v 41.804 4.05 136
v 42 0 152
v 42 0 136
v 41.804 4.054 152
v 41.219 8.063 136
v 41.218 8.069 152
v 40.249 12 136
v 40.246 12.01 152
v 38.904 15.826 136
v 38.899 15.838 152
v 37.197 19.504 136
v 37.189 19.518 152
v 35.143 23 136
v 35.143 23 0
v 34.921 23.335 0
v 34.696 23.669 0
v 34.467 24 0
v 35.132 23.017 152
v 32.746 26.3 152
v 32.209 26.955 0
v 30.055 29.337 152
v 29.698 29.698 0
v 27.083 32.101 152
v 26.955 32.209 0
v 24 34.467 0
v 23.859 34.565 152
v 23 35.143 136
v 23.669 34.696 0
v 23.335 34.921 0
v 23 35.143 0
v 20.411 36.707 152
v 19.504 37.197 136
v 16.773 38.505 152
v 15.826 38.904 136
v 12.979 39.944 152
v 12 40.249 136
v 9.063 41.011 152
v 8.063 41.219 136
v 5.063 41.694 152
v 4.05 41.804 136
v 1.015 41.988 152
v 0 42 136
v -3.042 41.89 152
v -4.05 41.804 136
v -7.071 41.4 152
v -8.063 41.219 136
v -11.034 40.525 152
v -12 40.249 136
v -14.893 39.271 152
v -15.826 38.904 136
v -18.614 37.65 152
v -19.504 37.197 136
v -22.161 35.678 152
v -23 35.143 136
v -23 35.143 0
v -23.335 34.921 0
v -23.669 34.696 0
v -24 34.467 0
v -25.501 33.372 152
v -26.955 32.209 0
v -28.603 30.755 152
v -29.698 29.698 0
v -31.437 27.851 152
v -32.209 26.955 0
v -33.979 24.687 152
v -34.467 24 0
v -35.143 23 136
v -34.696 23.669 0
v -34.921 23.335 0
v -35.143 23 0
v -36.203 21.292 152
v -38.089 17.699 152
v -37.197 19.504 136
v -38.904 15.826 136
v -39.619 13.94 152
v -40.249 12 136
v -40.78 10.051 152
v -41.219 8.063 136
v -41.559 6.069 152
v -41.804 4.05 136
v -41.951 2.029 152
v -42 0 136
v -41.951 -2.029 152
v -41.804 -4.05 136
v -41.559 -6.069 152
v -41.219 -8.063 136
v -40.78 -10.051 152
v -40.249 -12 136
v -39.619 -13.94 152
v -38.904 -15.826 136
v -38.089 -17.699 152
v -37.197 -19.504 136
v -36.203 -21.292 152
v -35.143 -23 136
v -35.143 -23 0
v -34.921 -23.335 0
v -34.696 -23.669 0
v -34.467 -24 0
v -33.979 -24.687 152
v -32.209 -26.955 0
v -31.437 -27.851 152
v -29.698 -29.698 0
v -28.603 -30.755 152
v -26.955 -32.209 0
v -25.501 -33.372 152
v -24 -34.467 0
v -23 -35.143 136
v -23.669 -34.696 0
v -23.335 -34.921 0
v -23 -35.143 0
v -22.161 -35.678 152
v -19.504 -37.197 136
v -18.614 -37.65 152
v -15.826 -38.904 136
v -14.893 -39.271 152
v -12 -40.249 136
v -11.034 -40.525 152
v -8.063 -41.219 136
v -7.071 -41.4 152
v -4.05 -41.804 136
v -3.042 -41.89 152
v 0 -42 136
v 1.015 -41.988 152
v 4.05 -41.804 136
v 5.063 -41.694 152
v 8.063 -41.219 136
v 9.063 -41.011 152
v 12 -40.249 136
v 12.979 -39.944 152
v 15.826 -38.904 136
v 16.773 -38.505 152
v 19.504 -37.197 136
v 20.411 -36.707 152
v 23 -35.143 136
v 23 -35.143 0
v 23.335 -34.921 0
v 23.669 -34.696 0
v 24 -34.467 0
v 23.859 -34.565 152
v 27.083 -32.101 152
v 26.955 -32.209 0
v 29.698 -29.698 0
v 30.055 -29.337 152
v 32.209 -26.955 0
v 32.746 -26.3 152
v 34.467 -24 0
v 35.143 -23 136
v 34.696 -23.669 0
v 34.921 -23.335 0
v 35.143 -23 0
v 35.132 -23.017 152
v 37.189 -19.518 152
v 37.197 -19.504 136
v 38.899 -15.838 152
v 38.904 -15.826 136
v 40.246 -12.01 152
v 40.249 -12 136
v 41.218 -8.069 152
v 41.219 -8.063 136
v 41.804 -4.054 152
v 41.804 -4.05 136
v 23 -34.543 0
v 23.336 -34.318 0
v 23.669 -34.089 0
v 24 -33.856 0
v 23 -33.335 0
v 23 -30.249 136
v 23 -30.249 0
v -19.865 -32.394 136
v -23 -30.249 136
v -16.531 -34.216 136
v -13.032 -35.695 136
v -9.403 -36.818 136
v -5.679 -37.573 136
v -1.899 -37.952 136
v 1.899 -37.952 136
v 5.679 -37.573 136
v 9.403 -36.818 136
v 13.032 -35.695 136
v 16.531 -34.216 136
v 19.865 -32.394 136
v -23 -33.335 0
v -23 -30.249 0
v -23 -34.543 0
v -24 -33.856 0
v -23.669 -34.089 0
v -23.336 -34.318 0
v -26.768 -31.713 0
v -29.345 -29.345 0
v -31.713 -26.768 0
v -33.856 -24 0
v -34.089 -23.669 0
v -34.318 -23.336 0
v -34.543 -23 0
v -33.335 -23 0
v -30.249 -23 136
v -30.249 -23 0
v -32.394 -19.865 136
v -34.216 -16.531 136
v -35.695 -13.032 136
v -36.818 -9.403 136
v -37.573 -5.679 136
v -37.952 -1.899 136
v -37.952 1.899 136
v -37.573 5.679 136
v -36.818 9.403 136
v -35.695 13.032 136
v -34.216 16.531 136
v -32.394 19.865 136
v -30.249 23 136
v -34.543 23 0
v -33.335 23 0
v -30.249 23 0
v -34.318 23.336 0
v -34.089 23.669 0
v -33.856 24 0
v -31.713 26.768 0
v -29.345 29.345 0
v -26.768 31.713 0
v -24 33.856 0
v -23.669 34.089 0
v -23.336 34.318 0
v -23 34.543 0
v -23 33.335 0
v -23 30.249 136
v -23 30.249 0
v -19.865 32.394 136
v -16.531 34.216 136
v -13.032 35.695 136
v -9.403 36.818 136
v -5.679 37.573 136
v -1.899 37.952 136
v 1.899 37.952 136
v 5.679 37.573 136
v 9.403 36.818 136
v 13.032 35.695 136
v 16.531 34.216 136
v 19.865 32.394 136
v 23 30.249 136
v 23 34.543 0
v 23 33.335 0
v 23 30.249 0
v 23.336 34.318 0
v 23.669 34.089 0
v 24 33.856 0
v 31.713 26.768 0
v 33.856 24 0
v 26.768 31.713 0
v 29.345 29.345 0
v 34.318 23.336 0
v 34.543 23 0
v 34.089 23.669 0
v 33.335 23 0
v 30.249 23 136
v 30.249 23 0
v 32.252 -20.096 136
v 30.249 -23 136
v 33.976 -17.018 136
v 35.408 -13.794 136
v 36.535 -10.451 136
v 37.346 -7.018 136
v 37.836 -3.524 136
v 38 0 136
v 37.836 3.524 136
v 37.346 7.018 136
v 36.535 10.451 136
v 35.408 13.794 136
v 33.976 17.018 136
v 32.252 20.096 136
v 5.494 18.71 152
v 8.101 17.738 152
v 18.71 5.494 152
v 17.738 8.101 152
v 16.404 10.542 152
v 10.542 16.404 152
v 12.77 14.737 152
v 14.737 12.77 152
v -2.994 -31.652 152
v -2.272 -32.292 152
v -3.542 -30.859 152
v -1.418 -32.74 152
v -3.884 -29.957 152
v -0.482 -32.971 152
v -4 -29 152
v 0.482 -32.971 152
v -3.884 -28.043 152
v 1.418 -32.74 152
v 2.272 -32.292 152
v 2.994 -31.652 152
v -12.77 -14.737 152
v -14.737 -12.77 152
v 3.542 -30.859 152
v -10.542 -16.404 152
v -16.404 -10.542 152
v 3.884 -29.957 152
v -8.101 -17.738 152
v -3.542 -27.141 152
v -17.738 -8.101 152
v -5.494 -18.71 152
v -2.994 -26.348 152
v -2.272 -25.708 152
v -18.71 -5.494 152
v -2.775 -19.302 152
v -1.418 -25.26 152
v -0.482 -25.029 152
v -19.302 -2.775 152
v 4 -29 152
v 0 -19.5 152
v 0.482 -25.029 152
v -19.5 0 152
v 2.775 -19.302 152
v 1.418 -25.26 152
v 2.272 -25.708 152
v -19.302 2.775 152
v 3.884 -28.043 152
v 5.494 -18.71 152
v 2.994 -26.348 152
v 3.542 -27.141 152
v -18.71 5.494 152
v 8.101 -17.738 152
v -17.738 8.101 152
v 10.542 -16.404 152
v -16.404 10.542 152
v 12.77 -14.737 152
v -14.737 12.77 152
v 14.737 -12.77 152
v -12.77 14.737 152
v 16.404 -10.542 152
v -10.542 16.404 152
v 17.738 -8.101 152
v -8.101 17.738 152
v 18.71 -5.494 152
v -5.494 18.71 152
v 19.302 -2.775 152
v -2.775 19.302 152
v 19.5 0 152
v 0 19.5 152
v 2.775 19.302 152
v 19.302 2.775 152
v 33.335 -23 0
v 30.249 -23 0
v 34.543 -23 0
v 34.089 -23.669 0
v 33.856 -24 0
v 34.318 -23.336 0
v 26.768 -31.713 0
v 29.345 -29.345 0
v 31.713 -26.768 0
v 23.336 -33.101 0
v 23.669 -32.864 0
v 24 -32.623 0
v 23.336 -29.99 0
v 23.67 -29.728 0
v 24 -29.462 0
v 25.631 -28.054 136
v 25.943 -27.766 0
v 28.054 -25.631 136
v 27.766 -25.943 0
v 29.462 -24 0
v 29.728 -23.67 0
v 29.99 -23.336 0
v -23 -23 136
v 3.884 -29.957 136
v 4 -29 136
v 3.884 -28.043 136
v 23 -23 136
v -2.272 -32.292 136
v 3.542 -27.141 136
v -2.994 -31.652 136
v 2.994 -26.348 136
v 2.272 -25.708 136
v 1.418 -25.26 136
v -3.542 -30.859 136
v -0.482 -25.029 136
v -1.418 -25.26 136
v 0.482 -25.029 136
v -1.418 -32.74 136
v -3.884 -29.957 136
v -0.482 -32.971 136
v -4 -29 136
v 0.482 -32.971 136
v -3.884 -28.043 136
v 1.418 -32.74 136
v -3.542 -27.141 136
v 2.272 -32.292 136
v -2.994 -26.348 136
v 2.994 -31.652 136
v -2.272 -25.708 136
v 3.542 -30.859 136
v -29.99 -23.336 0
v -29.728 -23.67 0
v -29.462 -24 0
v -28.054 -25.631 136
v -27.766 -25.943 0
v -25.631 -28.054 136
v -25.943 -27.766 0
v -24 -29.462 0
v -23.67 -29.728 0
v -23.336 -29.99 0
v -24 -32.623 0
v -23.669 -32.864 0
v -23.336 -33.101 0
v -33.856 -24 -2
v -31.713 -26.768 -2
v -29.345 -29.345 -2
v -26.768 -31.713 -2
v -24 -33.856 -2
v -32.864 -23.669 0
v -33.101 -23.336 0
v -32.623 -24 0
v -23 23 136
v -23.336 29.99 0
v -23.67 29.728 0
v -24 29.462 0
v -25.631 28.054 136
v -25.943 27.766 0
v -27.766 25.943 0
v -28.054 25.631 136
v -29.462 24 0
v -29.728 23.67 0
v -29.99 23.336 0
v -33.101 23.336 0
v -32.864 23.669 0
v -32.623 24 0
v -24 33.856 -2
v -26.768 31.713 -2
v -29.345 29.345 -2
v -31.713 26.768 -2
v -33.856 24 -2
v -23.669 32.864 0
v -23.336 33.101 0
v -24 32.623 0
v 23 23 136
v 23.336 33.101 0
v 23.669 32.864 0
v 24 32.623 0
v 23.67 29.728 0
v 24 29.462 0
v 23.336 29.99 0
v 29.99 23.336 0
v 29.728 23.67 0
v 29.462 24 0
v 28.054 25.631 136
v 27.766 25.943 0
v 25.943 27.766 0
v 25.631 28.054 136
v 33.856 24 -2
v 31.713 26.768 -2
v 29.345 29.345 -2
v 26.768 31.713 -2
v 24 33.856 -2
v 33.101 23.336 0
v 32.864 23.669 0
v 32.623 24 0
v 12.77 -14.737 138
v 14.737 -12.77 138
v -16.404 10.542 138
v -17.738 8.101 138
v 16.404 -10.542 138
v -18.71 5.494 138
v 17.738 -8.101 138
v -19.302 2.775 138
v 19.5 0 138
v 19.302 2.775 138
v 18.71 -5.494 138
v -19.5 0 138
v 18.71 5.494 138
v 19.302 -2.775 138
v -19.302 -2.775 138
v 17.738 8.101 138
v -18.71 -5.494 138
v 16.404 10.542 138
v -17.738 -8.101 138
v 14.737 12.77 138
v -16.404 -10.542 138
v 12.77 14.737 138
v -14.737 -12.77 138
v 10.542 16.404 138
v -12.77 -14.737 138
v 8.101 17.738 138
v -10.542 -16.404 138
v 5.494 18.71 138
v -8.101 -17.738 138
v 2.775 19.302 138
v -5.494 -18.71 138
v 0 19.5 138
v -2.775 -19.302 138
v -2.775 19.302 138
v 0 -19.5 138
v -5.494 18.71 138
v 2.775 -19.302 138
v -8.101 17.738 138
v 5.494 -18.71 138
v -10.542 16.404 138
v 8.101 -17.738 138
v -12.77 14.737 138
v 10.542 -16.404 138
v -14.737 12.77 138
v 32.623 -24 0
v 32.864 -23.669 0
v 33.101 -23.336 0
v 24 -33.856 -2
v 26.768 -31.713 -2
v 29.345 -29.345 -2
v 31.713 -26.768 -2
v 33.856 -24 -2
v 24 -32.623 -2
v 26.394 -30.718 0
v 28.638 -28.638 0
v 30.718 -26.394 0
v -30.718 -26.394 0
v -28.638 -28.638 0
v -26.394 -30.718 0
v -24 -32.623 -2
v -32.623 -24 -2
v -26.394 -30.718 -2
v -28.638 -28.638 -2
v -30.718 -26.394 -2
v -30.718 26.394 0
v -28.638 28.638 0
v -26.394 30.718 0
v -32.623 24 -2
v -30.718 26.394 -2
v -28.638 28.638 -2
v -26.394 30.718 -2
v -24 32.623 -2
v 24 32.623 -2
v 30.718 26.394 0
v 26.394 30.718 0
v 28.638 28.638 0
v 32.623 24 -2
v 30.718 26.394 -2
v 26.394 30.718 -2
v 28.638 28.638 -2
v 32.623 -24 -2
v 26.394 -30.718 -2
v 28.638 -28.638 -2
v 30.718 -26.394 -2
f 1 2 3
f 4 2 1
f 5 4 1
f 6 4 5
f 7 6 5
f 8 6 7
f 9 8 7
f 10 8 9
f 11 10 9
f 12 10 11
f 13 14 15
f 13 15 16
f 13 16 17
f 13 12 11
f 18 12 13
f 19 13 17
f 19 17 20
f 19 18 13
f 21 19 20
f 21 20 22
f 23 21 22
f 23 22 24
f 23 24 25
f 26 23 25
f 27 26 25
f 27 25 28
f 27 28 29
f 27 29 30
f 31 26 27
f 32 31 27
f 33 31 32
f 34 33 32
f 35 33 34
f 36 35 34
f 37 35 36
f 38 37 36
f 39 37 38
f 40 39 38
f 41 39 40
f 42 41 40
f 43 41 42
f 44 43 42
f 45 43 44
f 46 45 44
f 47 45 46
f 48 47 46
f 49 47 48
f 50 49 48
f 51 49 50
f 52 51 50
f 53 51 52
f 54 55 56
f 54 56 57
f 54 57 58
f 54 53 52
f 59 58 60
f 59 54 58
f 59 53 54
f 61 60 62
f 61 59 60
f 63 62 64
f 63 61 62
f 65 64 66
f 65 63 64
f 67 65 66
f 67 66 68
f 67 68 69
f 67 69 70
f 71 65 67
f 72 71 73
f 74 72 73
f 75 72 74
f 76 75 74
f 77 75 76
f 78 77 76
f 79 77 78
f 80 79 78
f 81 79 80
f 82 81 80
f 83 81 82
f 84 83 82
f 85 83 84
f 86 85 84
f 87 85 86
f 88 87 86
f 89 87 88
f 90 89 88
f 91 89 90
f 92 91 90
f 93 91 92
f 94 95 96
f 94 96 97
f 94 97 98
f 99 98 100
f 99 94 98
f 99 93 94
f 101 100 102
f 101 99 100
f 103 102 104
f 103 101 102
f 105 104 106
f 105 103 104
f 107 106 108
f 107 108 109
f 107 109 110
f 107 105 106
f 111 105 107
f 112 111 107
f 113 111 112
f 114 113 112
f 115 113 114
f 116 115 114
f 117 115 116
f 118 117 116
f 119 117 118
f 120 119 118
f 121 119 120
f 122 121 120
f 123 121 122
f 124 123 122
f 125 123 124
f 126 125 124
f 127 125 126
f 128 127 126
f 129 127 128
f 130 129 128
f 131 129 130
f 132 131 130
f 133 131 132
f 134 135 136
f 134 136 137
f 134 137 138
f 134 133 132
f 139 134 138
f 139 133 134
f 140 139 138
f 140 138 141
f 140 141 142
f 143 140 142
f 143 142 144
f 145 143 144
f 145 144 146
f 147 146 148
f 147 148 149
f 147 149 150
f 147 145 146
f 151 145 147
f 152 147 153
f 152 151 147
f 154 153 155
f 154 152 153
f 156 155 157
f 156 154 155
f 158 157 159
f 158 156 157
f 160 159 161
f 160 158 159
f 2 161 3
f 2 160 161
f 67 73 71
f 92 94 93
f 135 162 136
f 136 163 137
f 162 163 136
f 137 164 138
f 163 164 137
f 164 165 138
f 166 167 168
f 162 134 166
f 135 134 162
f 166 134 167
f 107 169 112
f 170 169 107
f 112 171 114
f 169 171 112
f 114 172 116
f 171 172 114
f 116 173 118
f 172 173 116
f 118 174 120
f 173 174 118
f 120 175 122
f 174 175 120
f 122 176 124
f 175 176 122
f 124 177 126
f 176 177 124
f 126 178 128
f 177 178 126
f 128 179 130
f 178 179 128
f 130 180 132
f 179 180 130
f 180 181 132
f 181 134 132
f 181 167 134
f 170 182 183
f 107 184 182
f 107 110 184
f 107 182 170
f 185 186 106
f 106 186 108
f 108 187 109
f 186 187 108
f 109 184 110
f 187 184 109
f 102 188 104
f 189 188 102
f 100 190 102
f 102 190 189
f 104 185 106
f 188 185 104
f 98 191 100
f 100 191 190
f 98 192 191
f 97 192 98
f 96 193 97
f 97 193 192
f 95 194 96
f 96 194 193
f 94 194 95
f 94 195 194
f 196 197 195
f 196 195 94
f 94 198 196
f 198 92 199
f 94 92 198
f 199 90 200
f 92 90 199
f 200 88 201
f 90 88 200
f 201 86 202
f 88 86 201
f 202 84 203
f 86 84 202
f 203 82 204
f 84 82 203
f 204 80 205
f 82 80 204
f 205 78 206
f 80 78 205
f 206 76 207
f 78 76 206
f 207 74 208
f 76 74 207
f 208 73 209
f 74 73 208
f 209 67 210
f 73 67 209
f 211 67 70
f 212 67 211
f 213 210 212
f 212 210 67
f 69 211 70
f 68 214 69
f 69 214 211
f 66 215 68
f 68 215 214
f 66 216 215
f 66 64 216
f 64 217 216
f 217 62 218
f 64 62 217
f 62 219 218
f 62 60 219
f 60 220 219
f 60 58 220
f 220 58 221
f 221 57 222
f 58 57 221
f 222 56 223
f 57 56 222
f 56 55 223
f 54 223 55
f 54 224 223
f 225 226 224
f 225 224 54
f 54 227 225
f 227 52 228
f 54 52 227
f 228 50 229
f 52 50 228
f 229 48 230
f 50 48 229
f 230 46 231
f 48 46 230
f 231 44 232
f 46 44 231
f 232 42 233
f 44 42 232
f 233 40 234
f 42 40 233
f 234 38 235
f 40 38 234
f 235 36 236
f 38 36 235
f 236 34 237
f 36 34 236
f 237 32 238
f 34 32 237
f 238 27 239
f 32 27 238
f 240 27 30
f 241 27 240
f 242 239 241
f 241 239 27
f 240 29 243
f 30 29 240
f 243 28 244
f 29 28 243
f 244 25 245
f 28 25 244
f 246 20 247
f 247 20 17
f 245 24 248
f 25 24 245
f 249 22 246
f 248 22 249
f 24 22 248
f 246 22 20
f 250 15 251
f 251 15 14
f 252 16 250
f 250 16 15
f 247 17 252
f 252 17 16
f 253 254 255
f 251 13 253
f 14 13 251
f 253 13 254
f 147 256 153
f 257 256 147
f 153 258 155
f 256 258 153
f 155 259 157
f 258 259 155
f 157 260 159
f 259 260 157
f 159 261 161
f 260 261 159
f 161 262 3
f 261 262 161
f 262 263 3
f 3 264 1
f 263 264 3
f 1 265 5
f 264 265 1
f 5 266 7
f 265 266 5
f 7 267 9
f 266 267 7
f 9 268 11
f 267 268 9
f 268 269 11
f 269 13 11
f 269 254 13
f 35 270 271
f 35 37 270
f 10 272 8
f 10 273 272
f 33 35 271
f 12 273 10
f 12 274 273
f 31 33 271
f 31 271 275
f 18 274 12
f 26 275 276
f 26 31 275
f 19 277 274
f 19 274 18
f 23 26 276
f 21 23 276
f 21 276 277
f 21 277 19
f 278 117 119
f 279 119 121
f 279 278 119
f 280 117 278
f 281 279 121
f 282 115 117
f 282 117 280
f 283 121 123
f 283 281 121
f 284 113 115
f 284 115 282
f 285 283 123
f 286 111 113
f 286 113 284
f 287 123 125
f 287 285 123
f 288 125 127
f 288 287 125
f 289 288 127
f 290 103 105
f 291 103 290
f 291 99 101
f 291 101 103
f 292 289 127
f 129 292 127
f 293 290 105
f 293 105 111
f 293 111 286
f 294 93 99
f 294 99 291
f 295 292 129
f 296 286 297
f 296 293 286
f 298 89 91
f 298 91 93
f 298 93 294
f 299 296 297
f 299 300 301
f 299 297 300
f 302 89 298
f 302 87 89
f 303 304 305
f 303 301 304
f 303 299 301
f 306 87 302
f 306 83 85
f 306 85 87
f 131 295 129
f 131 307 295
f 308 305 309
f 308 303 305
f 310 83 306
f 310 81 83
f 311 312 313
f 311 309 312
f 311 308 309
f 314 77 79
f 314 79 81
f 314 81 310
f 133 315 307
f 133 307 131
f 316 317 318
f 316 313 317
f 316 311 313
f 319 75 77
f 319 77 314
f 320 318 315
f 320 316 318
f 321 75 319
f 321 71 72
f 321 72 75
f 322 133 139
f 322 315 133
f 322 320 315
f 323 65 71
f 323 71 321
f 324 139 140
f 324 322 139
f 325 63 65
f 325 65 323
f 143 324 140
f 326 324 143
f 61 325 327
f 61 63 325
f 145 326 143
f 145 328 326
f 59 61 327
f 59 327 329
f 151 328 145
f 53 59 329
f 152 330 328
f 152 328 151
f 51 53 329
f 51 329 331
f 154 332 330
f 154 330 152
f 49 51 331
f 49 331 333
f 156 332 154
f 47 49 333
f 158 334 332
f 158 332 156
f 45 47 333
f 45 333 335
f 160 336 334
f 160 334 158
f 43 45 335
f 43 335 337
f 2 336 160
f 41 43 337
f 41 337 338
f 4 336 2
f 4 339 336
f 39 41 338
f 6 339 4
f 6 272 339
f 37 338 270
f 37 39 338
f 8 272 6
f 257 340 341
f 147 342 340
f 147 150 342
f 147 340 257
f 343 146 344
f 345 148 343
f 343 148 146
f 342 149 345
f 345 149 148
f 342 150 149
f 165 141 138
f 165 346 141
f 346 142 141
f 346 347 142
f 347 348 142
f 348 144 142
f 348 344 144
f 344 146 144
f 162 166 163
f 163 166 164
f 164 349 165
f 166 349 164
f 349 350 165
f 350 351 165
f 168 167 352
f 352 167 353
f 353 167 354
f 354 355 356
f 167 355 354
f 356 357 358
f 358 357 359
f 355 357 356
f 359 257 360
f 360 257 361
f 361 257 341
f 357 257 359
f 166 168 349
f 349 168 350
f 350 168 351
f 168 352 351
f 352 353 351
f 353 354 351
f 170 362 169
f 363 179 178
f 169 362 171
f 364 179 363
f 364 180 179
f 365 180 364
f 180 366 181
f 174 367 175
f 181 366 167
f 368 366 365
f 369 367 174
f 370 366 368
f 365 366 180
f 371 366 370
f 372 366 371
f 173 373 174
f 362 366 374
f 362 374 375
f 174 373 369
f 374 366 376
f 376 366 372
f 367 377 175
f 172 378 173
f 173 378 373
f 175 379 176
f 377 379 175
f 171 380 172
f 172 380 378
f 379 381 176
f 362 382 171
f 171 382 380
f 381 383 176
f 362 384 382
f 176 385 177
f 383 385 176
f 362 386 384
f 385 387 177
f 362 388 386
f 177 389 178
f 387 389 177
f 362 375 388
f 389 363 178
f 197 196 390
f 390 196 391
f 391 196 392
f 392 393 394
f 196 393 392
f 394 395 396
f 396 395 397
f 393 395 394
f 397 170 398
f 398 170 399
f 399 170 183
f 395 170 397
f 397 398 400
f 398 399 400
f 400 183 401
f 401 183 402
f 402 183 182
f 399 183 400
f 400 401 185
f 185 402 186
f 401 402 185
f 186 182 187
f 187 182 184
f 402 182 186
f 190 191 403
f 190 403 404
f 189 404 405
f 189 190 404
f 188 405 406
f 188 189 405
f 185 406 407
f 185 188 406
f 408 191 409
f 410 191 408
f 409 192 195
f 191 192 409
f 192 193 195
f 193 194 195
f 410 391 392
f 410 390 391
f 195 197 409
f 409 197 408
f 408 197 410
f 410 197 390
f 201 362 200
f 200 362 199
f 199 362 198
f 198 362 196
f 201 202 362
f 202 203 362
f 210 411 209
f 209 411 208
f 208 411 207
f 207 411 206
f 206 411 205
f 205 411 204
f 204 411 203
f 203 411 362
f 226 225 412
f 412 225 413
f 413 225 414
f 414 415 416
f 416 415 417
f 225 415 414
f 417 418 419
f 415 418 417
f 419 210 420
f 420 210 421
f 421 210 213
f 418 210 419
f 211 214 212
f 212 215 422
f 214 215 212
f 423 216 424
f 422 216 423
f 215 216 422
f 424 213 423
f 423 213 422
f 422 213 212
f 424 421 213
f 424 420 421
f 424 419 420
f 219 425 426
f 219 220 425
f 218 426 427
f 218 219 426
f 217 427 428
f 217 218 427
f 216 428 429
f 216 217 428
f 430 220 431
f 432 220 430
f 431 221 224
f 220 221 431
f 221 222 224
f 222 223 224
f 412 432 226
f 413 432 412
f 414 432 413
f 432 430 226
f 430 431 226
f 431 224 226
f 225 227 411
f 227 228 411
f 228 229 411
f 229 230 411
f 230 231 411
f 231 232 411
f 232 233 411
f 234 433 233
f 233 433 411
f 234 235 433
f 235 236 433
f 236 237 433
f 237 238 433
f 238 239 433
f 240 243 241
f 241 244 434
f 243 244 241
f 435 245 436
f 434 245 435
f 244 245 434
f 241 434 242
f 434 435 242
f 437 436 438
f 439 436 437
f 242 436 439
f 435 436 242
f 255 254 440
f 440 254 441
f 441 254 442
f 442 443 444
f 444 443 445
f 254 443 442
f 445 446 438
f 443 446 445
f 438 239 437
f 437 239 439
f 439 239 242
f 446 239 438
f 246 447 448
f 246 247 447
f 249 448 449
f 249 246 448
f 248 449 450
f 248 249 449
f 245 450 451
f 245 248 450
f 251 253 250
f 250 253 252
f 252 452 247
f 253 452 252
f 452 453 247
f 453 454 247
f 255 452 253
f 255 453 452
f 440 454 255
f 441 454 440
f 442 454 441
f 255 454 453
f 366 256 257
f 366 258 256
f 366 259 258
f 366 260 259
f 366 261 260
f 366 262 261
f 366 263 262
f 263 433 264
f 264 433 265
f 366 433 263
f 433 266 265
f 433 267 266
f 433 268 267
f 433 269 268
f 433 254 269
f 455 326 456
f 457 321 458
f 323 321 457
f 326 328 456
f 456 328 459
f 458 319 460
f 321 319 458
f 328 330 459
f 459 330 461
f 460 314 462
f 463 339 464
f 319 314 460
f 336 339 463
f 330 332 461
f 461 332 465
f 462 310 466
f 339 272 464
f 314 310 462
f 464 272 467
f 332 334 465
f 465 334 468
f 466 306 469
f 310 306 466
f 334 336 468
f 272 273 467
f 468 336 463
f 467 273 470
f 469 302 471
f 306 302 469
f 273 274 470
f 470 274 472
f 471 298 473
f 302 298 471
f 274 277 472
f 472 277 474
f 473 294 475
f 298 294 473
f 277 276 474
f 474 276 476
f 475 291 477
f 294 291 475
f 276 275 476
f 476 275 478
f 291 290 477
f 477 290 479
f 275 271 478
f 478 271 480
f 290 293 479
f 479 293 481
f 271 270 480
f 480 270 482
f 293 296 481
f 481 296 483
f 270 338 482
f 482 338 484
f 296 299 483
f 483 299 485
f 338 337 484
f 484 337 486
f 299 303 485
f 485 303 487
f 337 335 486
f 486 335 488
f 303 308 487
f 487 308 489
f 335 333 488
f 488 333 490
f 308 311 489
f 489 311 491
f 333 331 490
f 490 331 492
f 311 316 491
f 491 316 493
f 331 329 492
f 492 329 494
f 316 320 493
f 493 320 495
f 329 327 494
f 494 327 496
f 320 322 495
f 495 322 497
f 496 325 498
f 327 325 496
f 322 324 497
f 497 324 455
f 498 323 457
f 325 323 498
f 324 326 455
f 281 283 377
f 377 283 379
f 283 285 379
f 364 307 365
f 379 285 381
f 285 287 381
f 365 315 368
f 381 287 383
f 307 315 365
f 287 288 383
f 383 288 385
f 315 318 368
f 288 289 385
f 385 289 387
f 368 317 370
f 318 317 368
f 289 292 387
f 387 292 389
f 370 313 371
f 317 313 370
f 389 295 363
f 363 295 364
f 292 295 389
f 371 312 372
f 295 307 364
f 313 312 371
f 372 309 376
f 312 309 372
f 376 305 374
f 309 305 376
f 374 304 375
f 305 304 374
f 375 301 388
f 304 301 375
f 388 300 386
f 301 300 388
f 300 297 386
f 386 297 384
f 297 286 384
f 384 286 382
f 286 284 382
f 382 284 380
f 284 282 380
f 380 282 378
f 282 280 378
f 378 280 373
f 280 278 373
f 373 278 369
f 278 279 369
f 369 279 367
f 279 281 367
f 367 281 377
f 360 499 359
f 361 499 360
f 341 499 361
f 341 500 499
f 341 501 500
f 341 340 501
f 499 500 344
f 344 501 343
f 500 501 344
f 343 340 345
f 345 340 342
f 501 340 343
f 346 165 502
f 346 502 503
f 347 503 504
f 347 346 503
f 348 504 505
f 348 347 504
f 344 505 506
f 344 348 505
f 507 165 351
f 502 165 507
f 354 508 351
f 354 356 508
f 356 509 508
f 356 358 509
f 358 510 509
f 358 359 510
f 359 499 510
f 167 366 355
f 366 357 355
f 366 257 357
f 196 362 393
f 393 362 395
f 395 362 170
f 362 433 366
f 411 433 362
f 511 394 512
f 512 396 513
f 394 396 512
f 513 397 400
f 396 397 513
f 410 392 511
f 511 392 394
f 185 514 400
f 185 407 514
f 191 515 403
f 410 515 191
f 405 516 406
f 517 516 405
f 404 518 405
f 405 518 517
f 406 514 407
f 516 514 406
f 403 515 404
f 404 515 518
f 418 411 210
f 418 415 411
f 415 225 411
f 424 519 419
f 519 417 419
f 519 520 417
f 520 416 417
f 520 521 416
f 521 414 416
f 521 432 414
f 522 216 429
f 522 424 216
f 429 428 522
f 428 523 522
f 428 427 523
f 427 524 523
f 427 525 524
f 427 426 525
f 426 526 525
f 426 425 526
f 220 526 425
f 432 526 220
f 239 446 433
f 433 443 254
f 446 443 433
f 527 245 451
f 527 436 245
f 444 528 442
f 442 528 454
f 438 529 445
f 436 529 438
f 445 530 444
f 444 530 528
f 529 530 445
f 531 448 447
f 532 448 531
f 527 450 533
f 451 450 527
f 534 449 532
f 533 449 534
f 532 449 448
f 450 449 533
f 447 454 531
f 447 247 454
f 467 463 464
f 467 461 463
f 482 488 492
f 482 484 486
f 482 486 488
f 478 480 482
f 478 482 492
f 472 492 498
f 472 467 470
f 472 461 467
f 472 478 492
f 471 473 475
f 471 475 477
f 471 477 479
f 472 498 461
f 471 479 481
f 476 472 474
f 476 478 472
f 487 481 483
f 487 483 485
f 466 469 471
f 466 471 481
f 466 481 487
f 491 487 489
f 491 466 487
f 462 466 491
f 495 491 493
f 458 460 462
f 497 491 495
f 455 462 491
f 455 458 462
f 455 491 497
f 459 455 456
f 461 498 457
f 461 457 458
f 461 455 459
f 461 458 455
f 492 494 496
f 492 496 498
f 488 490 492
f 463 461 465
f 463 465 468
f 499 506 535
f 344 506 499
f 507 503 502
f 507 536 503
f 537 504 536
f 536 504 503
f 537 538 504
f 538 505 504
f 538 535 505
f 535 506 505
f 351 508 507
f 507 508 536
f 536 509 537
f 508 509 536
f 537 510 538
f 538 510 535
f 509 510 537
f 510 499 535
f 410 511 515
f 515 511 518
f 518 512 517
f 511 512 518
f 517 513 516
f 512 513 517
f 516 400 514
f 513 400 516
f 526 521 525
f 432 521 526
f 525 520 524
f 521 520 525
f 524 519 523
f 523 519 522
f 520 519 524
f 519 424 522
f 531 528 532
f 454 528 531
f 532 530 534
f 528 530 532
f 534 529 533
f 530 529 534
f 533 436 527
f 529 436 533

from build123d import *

# Parameters (mm, degrees)
BOX003_W          = 48
BOX003_H          = 78
BOX003_DEPTH      = 2
BOX002_W          = 48
BOX002_H          = 78
BOX002_DEPTH      = 2
CYLINDER006_R     = 41.5
CYLINDER006_DEPTH = 2
CYLINDER005_R     = 42
CYLINDER005_DEPTH = 2
CYLINDER004_R     = 40.5
CYLINDER004_DEPTH = 2
CYLINDER003_R     = 4
CYLINDER003_DEPTH = 26
BOX001_W          = 46
BOX001_H          = 99
BOX001_DEPTH      = 138
BOX_W             = 46
BOX_H             = 99
BOX_DEPTH         = 138
CYLINDER002_R     = 38
CYLINDER002_DEPTH = 138
CYLINDER001_R     = 19.5
CYLINDER001_DEPTH = 15
CYLINDER_R        = 42
CYLINDER_DEPTH    = 154


with BuildPart() as cubo003:
    # Box003 → Box003 (new body)
    with BuildSketch(Plane(origin=(37, -24, -2), x_dir=(0, 1, 0), z_dir=(0, 0, 1))):
        with Locations((24, 39)):
            Rectangle(BOX003_W, BOX003_H)
    extrude(amount=BOX003_DEPTH)


with BuildPart() as cubo002:
    # Box002 → Box002 (new body)
    with BuildSketch(Plane(origin=(-24, -39, -2), x_dir=(1, 0, 0), z_dir=(0, 0, 1))):
        with Locations((24, 39)):
            Rectangle(BOX002_W, BOX002_H)
    extrude(amount=BOX002_DEPTH)


with BuildPart() as base002:
    # Cylinder006 → Cylinder006 (new body)
    with BuildSketch(Plane.XY.offset(-2)):
        Circle(CYLINDER006_R)
    extrude(amount=CYLINDER006_DEPTH)


with BuildPart() as cut006:
    # Cylinder005 → Cylinder005 (new body)
    with BuildSketch(Plane.XY.offset(-2)):
        Circle(CYLINDER005_R)
    extrude(amount=CYLINDER005_DEPTH)

    # Cut006: cut Base002
    add(base002.part, mode=Mode.SUBTRACT)


with BuildPart() as agujero_inferior001:
    # Cylinder004 → Cylinder004 (new body)
    with BuildSketch(Plane.XY.offset(-2)):
        Circle(CYLINDER004_R)
    extrude(amount=CYLINDER004_DEPTH)


with BuildPart() as agujero_cables:
    # Cylinder003 → Cylinder003 (new body)
    with BuildSketch(Plane(origin=(0, -29, 131), x_dir=(1, 0, 0), z_dir=(0, 0, 1))):
        Circle(CYLINDER003_R)
    extrude(amount=CYLINDER003_DEPTH)


with BuildPart() as cubo001:
    # Box001 → Box001 (new body)
    with BuildSketch(Plane(origin=(44, -23, -2), x_dir=(0, 1, 0), z_dir=(0, 0, 1))):
        with Locations((23, 49.5)):
            Rectangle(BOX001_W, BOX001_H)
    extrude(amount=BOX001_DEPTH)


with BuildPart() as cubo:
    # Box → Box (new body)
    with BuildSketch(Plane(origin=(-23, -50, -2), x_dir=(1, 0, 0), z_dir=(0, 0, 1))):
        with Locations((23, 49.5)):
            Rectangle(BOX_W, BOX_H)
    extrude(amount=BOX_DEPTH)


with BuildPart() as agujero_inferior:
    # Cylinder002 → Cylinder002 (new body)
    with BuildSketch(Plane.XY.offset(-2)):
        Circle(CYLINDER002_R)
    extrude(amount=CYLINDER002_DEPTH)


with BuildPart() as agujero_superior:
    # Cylinder001 → Cylinder001 (new body)
    with BuildSketch(Plane.XY.offset(138)):
        Circle(CYLINDER001_R)
    extrude(amount=CYLINDER001_DEPTH)


with BuildPart() as cut009:
    # Cylinder → Cylinder (new body)
    with BuildSketch(Plane.XY.offset(-2)):
        Circle(CYLINDER_R)
    extrude(amount=CYLINDER_DEPTH)

    # Cut: cut Agujero superior
    add(agujero_superior.part, mode=Mode.SUBTRACT)

    # Cut001: cut Agujero inferior
    add(agujero_inferior.part, mode=Mode.SUBTRACT)

    # Cut002: cut Cubo
    add(cubo.part, mode=Mode.SUBTRACT)

    # Cut003: cut Cubo001
    add(cubo001.part, mode=Mode.SUBTRACT)

    # Cut004: cut Agujero cables
    add(agujero_cables.part, mode=Mode.SUBTRACT)

    # Cut005: cut Agujero inferior001
    add(agujero_inferior001.part, mode=Mode.SUBTRACT)

    # Cut007: cut Cut006
    add(cut006.part, mode=Mode.SUBTRACT)

    # Cut008: cut Cubo002
    add(cubo002.part, mode=Mode.SUBTRACT)

    # Cut009: cut Cubo003
    add(cubo003.part, mode=Mode.SUBTRACT)


solid = cut009.part
